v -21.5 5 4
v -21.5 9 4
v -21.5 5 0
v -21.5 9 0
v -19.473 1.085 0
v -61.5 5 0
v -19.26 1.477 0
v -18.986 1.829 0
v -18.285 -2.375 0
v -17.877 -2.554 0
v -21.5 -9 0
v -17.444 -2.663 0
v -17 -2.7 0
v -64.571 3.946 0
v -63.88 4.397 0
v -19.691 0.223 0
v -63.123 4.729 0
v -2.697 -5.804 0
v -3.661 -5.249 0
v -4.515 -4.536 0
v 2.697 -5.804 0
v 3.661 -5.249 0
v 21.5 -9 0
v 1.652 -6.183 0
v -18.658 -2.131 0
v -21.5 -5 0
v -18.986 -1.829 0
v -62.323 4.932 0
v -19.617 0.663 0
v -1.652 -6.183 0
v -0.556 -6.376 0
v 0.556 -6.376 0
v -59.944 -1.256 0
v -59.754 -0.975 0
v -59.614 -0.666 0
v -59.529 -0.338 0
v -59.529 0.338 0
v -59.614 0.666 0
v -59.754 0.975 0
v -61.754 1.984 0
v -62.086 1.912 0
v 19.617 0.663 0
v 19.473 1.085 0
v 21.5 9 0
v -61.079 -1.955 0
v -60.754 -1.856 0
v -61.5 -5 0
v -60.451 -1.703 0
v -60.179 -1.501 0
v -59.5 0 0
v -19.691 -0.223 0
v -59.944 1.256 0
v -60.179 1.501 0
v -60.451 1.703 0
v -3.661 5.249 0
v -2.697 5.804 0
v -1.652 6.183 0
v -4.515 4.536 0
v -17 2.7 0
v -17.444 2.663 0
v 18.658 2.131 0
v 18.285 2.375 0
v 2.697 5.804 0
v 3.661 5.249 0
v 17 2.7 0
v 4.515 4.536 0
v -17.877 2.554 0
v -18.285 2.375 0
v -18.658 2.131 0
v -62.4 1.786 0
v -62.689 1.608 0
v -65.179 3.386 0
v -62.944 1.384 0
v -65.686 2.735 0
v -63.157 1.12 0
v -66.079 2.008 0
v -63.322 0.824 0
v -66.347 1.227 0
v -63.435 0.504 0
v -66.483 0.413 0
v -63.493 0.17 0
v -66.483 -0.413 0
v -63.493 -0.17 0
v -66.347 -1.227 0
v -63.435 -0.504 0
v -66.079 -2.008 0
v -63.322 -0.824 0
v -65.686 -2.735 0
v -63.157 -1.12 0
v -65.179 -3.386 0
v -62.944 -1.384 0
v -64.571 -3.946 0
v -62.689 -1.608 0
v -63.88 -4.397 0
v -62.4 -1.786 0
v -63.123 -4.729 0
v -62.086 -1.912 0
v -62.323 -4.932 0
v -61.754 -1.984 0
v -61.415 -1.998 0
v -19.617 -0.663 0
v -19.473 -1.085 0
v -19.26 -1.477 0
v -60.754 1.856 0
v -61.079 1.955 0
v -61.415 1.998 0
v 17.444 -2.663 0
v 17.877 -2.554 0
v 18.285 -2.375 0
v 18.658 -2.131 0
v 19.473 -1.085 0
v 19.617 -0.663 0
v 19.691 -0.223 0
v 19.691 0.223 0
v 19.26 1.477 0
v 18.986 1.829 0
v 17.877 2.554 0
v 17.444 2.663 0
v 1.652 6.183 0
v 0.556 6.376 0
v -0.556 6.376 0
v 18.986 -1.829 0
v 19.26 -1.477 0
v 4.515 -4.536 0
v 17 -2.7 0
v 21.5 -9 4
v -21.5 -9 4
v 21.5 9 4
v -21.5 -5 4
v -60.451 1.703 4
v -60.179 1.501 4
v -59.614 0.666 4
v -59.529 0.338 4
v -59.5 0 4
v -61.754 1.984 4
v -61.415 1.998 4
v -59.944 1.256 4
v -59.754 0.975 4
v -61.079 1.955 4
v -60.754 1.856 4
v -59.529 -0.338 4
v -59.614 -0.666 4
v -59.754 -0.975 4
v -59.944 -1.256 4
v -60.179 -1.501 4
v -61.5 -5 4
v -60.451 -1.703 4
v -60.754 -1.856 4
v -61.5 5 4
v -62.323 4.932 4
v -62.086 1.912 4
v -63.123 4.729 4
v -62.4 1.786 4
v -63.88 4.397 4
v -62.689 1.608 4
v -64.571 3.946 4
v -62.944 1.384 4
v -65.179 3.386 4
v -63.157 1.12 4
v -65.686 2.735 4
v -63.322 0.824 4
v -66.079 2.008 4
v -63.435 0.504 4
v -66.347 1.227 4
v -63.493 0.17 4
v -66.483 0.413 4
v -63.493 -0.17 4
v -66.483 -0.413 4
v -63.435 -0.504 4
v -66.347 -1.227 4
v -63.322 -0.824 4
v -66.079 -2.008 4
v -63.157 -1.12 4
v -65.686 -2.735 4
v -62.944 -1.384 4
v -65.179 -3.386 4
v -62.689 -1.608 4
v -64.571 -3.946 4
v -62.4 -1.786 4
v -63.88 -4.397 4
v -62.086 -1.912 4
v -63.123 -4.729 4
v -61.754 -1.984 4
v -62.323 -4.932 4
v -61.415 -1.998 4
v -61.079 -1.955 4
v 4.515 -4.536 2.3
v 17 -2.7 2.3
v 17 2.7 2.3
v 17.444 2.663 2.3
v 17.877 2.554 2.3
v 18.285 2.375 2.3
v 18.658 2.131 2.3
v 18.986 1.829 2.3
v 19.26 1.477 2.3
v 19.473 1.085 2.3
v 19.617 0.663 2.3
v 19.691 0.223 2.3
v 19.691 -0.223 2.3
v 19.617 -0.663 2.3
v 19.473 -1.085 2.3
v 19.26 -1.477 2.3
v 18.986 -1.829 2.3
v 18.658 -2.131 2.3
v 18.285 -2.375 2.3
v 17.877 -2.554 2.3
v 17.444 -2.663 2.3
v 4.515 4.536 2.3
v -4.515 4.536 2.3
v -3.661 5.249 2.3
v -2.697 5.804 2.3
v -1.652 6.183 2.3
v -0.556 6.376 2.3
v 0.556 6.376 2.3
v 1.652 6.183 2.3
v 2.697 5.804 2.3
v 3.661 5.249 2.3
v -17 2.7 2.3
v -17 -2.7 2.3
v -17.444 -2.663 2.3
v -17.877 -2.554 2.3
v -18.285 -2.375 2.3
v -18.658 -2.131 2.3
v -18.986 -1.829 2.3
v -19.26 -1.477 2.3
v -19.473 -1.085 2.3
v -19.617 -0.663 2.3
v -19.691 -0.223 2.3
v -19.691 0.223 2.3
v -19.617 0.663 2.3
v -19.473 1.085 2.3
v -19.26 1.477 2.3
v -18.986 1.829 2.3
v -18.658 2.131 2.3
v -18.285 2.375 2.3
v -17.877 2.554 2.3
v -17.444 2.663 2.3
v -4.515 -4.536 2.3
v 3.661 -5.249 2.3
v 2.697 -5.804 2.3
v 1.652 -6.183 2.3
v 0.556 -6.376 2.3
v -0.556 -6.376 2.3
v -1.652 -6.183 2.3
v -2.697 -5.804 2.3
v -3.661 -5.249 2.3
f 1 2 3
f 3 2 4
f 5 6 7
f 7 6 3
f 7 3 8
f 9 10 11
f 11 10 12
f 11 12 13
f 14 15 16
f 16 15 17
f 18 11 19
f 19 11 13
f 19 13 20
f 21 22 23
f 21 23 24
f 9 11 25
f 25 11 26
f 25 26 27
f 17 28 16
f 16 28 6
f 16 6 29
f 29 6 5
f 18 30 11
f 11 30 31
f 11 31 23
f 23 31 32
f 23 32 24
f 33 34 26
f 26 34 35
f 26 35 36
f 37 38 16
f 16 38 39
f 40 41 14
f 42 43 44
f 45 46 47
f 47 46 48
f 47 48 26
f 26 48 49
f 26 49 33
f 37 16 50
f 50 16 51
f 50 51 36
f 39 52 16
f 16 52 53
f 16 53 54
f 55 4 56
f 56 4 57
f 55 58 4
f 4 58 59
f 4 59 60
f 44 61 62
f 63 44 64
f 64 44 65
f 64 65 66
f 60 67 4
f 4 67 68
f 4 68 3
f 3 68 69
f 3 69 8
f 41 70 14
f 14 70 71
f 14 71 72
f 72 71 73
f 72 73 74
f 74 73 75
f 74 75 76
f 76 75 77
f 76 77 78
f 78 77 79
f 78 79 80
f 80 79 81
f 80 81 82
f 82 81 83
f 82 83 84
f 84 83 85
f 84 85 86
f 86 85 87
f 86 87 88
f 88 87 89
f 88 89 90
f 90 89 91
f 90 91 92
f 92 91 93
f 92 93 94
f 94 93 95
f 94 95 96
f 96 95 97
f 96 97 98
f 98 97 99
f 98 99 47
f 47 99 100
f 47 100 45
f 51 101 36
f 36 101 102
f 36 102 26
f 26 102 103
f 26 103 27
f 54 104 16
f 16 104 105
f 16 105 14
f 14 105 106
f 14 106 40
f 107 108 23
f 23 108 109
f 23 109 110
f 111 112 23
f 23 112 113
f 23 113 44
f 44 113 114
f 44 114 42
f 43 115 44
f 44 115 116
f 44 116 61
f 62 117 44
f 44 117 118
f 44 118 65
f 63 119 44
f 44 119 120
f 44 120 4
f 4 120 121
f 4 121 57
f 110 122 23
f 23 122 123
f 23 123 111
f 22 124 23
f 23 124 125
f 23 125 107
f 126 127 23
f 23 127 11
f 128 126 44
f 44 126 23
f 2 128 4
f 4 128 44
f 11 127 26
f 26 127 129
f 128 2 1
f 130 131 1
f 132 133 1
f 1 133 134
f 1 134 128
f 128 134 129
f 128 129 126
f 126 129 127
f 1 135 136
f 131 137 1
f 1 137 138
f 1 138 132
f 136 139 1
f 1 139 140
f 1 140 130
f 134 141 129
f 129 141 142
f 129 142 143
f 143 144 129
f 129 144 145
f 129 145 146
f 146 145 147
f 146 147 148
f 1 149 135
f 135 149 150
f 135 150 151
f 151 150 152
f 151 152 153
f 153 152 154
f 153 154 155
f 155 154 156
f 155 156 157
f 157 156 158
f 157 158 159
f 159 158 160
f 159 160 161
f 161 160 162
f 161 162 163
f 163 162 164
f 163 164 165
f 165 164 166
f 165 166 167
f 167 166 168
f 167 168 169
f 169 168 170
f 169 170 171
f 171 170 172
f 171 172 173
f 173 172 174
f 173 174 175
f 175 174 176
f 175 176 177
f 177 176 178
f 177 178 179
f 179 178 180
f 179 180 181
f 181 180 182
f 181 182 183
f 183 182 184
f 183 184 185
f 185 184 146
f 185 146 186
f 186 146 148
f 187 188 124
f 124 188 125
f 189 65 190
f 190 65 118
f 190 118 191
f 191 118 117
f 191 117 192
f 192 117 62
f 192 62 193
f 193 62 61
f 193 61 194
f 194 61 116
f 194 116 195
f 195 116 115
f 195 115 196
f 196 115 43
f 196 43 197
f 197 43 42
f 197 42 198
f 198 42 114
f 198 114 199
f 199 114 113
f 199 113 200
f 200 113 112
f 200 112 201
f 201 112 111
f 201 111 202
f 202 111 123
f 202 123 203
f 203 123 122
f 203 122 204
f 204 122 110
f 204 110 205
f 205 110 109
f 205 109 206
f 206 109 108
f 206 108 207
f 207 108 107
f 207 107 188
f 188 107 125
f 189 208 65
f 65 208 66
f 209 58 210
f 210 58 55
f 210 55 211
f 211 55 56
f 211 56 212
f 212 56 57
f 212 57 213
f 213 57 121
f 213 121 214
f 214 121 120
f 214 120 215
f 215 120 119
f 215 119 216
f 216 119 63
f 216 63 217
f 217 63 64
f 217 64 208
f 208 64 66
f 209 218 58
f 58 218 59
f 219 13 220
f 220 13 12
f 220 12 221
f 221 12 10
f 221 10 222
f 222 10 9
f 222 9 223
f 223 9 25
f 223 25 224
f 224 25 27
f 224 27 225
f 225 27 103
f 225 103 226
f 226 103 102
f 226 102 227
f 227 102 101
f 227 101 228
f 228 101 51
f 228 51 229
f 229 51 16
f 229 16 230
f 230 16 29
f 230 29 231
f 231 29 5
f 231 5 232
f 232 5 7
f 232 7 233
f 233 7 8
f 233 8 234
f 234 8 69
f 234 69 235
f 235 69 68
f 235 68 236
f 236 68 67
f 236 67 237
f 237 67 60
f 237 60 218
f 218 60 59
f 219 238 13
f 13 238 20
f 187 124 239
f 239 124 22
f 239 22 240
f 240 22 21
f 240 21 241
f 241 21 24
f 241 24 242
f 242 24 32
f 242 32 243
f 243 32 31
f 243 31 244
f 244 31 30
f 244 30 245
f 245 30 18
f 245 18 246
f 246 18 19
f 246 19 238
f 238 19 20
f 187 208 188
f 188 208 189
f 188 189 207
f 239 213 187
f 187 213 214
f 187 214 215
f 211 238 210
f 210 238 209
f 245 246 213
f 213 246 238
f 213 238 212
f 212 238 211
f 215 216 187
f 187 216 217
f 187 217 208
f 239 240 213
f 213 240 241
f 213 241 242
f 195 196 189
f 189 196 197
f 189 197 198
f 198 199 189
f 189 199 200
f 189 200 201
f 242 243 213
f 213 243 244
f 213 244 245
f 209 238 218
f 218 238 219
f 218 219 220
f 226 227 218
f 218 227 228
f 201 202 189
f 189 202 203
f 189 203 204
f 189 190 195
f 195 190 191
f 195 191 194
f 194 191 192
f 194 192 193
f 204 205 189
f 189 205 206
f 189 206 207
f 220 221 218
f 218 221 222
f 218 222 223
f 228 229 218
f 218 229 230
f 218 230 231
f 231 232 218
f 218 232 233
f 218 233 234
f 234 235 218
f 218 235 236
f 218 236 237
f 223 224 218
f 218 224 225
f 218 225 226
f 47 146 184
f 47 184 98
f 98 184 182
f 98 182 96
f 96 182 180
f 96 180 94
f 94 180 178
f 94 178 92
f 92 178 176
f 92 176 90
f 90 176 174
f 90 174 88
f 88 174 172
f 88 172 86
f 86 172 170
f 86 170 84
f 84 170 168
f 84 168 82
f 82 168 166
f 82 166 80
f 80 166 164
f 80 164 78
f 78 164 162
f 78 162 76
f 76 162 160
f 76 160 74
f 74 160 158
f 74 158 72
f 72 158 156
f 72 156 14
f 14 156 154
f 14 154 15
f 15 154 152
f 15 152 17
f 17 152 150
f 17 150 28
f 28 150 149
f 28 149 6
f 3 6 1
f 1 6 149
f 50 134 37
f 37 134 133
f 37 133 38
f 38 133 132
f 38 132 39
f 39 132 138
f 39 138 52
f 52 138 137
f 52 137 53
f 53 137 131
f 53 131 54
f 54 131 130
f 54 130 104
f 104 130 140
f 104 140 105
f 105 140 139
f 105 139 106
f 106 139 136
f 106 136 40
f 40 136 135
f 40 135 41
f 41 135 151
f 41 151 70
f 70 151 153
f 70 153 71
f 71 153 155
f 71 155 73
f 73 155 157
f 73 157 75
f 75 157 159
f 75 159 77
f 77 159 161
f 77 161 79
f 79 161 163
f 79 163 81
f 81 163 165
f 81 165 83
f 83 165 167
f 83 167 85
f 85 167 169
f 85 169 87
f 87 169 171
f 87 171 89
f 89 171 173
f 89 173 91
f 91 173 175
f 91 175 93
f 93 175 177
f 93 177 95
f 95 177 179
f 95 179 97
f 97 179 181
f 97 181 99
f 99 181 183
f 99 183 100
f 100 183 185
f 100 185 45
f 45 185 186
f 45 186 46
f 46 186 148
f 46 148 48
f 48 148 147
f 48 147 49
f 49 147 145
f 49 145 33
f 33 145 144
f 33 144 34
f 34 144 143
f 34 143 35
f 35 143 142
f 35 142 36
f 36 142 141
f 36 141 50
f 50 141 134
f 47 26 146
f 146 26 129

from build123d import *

# Parameters (mm, degrees)
SKETCH1_W           = 43
SKETCH1_H           = 18
BOSS_EXTRUDE1_DEPTH = 4
CAVITY2_DEPTH       = 2.3
BOSS_EXTRUDE2_DEPTH = 4


# Read off the part's stored shape, not the designer's step: Cavity2
with BuildPart() as part:
    # Sketch1 → Boss-Extrude1 (new body)
    with BuildSketch(Plane.XY):
        Rectangle(SKETCH1_W, SKETCH1_H)
    extrude(amount=BOSS_EXTRUDE1_DEPTH)

    # Cavity2 outline → Cavity2 (cut)
    with BuildSketch(Plane.XY):
        with BuildLine():
            ThreePointArc((-4.514897629, -4.536044466), (0, -6.4), (4.514897629, -4.536044466))
            Line((4.514897629, -4.536044466), (17, -2.7))
            ThreePointArc((17, -2.7), (19.7, 0), (17, 2.7))
            Line((17, 2.7), (4.514897629, 4.536044466))
            ThreePointArc((4.514897629, 4.536044466), (0, 6.4), (-4.514897629, 4.536044466))
            Line((-4.514897629, 4.536044466), (-17, 2.7))
            ThreePointArc((-17, 2.7), (-19.7, 0), (-17, -2.7))
            Line((-17, -2.7), (-4.514897629, -4.536044466))
        make_face()
    extrude(amount=CAVITY2_DEPTH, mode=Mode.SUBTRACT)

    # Sketch4 → Boss-Extrude2 (add)
    with BuildSketch(Plane.XY.offset(4)):
        with BuildLine():
            ThreePointArc((-56.5, 0), (-57.964466094, 3.535533906), (-61.5, 5))
            Line((-61.5, 5), (-61.5, 2))
            ThreePointArc((-61.5, 2), (-60.085786438, 1.414213562), (-59.5, 0))
            ThreePointArc((-59.5, 0), (-60.085786438, -1.414213562), (-61.5, -2))
            Line((-61.5, -2), (-61.5, -5))
            ThreePointArc((-61.5, -5), (-57.964466094, -3.535533906), (-56.5, 0))
        make_face()
        with BuildLine():
            Line((-61.5, 2), (-61.5, 5))
            ThreePointArc((-61.5, 5), (-66.5, 0), (-61.5, -5))
            Line((-61.5, -5), (-61.5, -2))
            ThreePointArc((-61.5, -2), (-63.5, 0), (-61.5, 2))
        make_face()
        with BuildLine():
            Line((-21.5, -5), (-21.5, 5))
            Line((-21.5, 5), (-61.5, 5))
            ThreePointArc((-61.5, 5), (-57.964466094, 3.535533906), (-56.5, 0))
            ThreePointArc((-56.5, 0), (-57.964466094, -3.535533906), (-61.5, -5))
            Line((-61.5, -5), (-21.5, -5))
        make_face()
    extrude(amount=-BOSS_EXTRUDE2_DEPTH)


solid = part.part
